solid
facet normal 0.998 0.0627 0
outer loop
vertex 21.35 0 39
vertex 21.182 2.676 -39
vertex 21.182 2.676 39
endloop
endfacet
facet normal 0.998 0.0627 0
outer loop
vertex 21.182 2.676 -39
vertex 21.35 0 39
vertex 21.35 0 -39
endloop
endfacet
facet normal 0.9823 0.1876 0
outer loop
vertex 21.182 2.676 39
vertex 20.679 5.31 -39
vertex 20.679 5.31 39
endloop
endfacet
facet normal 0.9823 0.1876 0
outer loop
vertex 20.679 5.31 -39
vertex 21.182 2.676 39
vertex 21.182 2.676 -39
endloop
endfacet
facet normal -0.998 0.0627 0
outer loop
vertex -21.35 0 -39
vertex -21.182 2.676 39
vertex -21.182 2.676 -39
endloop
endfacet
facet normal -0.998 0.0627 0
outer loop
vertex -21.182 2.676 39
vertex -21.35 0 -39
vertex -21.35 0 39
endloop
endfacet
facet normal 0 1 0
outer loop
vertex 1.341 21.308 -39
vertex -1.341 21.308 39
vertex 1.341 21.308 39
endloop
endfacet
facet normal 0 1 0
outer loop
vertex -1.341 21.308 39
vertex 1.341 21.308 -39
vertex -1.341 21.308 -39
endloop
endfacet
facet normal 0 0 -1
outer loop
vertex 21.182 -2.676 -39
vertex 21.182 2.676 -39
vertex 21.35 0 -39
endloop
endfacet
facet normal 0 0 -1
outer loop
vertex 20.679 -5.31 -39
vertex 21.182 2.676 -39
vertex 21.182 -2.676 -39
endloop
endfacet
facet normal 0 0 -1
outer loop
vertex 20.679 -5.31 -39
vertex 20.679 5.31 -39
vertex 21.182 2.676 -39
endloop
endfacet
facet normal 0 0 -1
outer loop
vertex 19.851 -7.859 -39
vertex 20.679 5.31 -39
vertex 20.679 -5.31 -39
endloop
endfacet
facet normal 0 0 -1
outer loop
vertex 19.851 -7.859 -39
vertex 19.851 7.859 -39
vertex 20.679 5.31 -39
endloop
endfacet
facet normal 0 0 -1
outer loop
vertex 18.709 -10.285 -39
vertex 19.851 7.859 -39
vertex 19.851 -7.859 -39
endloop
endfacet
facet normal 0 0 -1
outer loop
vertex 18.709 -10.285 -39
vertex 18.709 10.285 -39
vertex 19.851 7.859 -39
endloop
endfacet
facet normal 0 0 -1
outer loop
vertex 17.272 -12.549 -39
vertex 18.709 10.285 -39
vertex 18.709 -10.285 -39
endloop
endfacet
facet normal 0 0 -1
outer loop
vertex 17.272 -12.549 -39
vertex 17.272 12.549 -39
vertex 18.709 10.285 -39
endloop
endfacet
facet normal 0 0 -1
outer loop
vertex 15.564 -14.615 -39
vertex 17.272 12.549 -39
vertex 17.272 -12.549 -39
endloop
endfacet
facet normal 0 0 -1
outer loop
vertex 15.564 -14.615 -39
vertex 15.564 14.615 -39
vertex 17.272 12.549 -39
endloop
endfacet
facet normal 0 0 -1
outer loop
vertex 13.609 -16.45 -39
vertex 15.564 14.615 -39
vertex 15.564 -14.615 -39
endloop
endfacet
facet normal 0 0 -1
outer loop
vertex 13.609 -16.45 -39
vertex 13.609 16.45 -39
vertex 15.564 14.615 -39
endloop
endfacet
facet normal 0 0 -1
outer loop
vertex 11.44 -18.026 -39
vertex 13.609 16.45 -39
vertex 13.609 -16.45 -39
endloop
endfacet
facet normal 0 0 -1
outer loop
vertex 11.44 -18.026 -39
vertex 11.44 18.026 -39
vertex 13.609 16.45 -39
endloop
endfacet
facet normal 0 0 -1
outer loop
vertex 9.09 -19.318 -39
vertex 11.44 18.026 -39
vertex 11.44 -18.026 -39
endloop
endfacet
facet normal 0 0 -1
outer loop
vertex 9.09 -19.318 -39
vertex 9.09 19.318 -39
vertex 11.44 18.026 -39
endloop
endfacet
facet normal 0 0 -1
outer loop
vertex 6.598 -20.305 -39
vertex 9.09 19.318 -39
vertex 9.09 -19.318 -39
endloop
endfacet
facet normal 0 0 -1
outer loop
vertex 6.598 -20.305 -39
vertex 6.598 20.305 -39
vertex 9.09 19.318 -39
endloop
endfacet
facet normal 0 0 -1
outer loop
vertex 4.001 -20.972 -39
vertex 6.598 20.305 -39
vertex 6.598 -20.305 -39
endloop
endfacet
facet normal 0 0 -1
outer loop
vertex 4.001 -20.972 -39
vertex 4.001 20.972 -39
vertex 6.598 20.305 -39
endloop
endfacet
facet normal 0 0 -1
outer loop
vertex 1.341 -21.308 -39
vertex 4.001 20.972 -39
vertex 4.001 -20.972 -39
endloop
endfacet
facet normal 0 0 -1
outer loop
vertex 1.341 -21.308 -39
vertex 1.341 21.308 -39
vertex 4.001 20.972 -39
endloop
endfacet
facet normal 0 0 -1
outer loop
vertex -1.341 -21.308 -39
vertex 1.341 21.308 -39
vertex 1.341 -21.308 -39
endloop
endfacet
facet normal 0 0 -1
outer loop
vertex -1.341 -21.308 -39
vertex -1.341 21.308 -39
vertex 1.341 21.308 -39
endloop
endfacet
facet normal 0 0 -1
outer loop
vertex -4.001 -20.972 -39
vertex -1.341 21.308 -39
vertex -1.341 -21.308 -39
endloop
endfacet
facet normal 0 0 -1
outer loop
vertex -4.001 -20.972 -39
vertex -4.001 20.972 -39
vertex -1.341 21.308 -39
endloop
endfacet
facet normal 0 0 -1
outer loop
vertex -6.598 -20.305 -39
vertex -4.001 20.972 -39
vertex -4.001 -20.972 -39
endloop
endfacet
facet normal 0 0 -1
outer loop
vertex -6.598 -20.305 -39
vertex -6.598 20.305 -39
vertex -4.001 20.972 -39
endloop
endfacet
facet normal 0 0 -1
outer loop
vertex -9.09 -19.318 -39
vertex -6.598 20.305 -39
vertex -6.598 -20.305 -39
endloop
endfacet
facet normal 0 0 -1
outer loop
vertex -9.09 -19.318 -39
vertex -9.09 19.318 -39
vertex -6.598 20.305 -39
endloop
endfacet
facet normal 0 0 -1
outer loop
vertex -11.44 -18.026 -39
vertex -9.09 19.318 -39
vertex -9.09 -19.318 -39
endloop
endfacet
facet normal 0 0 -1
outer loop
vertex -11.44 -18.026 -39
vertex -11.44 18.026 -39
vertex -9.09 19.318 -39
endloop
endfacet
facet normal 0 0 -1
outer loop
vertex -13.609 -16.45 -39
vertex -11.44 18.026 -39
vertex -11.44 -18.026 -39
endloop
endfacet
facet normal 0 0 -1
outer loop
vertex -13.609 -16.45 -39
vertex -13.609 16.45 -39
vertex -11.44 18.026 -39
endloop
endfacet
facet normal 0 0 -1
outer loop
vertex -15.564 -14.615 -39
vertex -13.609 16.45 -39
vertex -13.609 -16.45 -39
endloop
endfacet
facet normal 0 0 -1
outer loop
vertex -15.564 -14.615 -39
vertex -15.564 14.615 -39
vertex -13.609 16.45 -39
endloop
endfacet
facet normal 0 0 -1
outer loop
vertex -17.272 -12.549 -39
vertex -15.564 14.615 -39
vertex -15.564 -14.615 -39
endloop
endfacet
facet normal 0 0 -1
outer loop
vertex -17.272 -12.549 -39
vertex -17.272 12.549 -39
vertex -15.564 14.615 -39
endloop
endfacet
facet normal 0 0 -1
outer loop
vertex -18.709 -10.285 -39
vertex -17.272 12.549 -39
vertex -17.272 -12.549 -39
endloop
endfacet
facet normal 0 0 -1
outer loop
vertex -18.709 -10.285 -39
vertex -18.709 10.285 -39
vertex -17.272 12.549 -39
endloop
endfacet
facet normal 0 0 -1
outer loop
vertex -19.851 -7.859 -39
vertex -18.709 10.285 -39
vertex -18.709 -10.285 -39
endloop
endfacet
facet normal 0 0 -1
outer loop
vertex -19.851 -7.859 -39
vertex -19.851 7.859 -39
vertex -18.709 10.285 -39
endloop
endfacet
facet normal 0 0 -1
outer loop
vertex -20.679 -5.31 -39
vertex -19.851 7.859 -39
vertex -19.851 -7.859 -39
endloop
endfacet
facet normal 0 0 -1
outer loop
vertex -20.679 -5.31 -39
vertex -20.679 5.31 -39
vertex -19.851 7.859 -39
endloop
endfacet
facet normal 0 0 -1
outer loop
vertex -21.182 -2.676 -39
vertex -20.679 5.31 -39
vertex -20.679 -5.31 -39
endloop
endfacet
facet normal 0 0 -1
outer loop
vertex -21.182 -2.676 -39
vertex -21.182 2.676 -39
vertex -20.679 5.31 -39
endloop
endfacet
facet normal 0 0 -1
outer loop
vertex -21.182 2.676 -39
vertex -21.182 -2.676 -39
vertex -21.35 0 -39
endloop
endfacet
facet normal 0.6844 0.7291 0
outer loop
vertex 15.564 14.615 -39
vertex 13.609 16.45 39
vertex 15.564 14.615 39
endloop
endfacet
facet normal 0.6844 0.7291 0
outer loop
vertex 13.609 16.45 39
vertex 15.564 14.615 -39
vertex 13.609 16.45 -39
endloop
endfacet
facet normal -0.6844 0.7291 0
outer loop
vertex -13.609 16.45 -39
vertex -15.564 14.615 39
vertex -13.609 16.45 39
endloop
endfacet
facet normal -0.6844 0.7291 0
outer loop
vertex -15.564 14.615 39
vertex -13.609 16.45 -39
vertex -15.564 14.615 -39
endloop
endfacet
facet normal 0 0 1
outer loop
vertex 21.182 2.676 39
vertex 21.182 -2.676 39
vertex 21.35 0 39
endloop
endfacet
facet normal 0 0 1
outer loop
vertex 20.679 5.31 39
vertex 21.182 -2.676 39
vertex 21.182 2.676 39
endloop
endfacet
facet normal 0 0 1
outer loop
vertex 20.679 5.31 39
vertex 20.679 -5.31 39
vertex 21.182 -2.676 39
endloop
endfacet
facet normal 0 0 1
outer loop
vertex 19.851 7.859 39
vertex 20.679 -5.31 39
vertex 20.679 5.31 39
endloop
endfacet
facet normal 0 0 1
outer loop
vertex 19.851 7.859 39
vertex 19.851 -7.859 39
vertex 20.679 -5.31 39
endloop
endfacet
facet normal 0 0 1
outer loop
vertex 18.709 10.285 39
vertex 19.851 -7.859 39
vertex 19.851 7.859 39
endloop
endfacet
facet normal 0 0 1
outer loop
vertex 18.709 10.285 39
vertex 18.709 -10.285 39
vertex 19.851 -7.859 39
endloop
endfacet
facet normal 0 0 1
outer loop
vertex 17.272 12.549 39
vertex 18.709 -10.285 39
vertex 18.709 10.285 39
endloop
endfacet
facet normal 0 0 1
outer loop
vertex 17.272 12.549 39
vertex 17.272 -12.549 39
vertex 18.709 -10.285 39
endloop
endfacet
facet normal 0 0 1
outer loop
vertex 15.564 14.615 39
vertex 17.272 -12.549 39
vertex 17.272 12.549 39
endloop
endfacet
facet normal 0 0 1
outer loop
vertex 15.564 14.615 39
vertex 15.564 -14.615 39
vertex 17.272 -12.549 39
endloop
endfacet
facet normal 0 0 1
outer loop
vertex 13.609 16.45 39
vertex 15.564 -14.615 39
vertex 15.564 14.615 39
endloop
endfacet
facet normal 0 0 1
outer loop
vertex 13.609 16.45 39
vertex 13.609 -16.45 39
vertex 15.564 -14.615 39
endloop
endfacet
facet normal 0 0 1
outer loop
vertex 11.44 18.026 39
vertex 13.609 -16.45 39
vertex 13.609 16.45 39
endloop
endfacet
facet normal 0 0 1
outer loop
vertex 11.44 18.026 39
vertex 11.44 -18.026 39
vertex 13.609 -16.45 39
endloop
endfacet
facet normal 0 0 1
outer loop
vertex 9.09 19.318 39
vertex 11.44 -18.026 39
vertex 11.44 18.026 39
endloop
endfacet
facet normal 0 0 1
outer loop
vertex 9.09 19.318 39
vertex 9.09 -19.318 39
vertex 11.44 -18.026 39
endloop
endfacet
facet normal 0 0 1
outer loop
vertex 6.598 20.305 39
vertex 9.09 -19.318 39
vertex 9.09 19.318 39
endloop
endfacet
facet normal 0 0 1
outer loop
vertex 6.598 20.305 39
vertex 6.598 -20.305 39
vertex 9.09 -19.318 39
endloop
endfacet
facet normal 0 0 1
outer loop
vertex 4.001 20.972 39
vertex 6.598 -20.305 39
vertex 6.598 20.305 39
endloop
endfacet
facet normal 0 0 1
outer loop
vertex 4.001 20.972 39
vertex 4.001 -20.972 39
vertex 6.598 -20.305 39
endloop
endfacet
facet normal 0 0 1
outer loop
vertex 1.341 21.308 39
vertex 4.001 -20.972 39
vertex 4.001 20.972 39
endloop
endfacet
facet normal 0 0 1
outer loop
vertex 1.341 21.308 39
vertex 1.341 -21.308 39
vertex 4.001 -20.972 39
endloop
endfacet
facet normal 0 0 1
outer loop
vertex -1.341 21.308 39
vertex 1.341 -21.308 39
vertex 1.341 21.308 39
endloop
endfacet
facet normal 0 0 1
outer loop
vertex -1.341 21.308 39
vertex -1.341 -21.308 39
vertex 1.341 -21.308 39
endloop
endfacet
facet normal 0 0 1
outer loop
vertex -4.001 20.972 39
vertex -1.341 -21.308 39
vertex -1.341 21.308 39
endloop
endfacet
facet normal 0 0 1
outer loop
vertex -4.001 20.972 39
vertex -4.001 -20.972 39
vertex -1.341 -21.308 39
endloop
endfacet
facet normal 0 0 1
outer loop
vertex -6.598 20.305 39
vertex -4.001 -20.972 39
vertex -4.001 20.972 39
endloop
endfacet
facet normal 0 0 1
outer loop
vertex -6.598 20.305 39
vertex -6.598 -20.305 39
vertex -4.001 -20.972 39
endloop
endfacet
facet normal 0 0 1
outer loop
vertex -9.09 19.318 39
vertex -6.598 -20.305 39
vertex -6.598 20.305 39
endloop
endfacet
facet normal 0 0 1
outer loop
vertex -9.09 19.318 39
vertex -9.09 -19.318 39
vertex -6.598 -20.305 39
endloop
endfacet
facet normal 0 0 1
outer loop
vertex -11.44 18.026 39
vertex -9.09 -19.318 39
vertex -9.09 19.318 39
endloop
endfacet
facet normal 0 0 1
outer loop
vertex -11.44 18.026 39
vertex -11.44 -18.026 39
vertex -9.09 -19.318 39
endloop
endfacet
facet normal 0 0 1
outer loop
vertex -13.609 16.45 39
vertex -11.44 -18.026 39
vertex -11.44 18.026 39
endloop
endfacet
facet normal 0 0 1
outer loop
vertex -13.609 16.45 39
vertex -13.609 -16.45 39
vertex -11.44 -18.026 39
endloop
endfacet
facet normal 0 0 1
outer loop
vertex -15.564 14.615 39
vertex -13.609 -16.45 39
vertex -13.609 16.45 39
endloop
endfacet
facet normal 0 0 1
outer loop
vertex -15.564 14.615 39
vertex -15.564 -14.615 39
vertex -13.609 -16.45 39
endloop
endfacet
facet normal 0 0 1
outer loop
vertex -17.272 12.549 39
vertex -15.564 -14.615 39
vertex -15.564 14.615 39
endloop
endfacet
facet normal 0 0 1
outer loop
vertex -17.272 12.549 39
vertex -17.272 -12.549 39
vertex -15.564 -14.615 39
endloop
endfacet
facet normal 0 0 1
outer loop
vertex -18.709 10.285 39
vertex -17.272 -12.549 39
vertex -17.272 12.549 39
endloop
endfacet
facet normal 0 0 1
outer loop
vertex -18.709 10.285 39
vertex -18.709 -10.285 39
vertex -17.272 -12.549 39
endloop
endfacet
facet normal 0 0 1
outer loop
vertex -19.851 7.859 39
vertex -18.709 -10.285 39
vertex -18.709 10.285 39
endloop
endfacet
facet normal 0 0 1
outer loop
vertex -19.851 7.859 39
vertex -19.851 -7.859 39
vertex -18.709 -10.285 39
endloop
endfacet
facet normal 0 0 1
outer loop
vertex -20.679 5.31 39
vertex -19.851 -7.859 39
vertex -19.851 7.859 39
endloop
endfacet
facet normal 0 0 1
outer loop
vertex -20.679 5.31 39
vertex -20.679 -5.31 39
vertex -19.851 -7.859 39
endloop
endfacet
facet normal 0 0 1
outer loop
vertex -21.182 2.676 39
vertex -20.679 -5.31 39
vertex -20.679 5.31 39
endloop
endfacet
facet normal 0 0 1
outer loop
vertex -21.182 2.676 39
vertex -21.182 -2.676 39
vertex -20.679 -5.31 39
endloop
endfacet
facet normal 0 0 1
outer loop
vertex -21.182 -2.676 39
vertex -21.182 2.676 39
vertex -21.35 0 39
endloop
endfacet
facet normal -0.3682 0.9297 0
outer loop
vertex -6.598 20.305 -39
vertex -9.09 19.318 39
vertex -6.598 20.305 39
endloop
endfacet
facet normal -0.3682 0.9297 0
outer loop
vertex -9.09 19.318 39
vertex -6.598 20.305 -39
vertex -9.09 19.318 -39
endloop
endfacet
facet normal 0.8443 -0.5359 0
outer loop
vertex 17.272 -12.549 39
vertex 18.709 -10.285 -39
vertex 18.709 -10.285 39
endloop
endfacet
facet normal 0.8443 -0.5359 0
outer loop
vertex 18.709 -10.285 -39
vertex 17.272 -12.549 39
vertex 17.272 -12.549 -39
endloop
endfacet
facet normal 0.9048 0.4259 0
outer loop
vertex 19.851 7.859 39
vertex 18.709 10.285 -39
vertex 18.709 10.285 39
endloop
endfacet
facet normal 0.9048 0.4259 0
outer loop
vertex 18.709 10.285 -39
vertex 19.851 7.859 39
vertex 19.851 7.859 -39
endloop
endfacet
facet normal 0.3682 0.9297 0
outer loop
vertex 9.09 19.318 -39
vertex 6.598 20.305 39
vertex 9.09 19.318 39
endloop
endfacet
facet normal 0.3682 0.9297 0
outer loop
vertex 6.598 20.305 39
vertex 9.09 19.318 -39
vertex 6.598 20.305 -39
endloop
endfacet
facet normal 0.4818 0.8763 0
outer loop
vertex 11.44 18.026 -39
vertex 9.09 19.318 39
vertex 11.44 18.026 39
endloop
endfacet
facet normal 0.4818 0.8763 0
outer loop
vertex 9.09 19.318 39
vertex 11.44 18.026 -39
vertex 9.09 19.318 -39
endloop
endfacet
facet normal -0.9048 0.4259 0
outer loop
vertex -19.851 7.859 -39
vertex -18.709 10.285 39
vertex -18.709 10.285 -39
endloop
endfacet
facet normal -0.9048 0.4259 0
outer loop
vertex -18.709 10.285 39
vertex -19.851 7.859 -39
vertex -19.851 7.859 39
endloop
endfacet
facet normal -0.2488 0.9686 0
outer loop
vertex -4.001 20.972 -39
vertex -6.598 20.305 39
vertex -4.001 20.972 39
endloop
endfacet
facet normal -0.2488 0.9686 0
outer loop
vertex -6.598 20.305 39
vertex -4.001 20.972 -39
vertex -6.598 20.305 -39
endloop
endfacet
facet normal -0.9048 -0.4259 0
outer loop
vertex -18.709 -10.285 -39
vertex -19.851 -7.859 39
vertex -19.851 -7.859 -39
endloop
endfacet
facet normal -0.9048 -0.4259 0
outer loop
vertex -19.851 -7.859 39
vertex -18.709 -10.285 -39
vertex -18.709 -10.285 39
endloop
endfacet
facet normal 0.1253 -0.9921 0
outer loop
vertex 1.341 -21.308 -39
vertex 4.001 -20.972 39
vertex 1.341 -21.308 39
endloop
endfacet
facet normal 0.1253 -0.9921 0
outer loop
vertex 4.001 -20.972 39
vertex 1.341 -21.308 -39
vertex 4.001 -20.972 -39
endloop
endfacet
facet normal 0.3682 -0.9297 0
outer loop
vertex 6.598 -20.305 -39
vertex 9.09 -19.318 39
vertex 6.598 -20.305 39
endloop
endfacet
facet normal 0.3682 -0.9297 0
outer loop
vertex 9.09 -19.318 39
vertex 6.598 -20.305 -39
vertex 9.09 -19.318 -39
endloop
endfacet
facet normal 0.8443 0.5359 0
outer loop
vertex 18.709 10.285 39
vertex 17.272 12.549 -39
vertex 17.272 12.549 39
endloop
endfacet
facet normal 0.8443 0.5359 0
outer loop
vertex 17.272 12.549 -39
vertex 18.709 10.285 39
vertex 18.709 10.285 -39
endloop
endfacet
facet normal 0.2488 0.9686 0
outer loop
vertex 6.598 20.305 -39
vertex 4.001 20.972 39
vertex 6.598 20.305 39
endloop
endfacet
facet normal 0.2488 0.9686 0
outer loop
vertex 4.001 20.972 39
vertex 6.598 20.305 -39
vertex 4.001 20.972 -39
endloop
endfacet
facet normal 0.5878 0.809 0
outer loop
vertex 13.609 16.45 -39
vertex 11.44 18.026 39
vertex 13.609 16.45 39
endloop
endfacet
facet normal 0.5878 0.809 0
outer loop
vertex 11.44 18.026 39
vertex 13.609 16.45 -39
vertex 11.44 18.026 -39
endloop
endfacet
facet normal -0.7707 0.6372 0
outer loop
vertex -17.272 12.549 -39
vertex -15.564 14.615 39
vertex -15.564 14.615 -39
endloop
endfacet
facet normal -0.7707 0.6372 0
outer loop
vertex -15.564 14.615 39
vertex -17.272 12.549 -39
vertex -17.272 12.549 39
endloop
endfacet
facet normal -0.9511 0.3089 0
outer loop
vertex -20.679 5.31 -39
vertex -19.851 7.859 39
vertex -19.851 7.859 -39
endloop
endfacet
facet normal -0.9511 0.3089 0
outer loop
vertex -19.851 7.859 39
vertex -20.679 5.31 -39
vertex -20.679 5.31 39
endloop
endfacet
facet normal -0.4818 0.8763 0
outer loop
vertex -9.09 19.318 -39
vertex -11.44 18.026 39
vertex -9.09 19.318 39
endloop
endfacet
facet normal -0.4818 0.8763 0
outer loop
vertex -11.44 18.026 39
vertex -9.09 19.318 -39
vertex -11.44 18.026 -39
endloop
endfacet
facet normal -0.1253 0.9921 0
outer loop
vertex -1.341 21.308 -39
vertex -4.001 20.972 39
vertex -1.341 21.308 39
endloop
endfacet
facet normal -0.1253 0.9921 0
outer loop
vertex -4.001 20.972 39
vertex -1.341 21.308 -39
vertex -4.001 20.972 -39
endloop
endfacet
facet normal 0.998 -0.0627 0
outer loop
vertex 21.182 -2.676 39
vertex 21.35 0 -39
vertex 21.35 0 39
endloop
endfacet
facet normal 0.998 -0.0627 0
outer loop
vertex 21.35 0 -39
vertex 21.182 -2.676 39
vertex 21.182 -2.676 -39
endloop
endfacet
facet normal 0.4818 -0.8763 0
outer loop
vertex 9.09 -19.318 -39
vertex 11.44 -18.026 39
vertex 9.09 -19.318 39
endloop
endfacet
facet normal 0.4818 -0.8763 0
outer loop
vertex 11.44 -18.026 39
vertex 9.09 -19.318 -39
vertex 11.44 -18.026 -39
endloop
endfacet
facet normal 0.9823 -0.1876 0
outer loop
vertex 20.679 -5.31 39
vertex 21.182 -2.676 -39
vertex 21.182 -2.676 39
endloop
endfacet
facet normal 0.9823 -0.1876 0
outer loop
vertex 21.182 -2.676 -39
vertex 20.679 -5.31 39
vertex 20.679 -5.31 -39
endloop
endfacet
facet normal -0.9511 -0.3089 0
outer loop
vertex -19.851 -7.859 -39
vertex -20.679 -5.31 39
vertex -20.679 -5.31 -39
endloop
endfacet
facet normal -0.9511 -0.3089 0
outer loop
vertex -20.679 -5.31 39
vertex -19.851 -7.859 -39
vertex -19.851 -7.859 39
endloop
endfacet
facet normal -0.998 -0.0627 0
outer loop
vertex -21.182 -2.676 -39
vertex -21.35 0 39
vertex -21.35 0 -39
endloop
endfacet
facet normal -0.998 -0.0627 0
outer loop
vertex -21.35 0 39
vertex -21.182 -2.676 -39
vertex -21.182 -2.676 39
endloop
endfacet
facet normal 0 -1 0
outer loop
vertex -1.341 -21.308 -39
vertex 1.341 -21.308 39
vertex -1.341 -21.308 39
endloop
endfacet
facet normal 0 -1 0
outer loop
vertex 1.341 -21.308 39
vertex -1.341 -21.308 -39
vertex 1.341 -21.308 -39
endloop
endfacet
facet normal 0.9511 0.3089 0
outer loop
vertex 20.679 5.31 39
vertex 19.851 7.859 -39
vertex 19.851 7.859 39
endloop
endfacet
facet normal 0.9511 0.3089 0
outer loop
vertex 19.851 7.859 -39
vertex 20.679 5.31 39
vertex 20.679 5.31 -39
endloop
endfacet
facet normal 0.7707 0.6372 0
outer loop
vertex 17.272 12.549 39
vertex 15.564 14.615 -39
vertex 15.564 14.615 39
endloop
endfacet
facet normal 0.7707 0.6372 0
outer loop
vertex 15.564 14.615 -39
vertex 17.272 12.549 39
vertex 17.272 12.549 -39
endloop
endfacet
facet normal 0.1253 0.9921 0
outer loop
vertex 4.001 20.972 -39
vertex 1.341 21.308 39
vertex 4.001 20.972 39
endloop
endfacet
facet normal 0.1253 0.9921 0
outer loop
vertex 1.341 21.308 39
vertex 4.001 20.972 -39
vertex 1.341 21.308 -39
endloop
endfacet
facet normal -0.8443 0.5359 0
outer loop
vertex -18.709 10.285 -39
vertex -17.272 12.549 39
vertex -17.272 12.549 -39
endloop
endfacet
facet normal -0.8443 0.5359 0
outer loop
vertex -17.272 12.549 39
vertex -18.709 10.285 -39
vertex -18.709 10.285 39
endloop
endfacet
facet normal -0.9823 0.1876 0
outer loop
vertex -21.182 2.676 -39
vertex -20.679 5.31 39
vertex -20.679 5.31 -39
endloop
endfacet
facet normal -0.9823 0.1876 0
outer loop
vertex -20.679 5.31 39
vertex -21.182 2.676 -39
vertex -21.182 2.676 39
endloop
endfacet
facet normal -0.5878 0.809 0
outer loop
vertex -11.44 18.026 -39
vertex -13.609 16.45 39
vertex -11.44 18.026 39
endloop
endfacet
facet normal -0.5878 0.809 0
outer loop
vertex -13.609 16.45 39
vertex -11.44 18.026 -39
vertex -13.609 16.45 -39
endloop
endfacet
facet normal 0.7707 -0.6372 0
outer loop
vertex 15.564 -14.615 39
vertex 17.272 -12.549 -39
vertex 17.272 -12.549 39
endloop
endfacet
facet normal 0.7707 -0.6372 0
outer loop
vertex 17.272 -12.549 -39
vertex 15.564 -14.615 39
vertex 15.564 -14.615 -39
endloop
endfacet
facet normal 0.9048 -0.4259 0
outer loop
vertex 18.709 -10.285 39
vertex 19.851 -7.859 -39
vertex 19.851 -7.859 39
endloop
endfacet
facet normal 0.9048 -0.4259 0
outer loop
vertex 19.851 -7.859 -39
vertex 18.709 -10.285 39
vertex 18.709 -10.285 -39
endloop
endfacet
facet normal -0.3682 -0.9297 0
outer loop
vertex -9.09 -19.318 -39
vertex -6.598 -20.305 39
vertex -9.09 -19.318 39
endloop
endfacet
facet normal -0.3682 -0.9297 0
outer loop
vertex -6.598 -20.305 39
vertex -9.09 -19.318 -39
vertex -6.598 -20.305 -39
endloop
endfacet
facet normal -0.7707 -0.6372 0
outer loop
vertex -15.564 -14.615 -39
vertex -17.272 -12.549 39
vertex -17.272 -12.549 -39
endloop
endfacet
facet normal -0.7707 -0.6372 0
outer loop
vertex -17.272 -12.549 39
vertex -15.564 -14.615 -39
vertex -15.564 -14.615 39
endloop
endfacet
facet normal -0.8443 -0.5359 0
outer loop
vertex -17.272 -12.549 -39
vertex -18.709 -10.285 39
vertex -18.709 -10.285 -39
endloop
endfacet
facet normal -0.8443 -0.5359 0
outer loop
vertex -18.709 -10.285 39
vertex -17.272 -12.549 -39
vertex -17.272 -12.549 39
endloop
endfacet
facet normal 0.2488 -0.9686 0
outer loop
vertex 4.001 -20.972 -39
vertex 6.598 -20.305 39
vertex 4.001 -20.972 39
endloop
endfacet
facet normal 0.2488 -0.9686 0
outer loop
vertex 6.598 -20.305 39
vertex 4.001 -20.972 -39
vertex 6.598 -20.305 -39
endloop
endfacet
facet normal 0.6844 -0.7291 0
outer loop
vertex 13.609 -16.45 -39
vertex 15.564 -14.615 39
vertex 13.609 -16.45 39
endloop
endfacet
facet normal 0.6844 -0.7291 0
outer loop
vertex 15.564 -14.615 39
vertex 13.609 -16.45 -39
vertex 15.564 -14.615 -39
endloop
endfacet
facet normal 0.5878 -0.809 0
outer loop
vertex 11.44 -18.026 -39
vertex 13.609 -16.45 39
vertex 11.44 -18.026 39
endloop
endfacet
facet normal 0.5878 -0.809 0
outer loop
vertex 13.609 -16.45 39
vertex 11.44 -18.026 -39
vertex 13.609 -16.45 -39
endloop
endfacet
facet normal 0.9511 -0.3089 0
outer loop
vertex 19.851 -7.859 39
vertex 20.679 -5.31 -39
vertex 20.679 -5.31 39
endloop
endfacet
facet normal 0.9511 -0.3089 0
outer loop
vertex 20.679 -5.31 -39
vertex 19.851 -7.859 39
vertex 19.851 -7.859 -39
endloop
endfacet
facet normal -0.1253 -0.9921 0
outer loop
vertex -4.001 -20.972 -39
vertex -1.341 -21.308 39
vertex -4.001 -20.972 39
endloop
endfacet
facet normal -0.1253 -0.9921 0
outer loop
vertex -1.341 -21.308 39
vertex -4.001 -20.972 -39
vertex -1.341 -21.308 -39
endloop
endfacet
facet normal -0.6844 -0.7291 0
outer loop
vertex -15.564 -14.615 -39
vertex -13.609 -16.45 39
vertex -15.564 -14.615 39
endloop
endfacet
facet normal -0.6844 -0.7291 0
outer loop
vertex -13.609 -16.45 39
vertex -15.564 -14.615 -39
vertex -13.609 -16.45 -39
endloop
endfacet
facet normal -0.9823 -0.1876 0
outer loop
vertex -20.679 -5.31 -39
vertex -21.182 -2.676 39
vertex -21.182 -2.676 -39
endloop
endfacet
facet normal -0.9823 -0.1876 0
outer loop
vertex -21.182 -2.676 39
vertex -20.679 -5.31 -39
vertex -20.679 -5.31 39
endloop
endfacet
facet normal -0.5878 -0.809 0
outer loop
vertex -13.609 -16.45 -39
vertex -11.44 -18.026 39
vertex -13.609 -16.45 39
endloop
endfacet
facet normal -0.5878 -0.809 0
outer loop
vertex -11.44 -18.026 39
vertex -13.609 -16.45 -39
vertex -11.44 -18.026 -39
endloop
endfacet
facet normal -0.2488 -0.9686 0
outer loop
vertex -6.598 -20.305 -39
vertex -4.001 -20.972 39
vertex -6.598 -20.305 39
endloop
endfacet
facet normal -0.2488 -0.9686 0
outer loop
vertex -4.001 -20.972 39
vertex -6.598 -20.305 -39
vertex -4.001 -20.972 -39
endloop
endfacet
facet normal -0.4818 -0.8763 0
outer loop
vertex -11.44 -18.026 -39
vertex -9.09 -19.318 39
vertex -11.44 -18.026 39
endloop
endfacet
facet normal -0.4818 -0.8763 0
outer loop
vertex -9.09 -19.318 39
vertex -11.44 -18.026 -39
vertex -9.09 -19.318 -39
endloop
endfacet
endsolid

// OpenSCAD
$fn = 50;


difference() {
	union() {
		translate(v = [0, 0, -39.0000000000]) {
			cylinder(h = 78, r = 21.3500000000);
		}
	}
	union() {
		translate(v = [0, 0, -100.0000000000]) {
			cylinder(h = 200, r = 0);
		}
	}
}
